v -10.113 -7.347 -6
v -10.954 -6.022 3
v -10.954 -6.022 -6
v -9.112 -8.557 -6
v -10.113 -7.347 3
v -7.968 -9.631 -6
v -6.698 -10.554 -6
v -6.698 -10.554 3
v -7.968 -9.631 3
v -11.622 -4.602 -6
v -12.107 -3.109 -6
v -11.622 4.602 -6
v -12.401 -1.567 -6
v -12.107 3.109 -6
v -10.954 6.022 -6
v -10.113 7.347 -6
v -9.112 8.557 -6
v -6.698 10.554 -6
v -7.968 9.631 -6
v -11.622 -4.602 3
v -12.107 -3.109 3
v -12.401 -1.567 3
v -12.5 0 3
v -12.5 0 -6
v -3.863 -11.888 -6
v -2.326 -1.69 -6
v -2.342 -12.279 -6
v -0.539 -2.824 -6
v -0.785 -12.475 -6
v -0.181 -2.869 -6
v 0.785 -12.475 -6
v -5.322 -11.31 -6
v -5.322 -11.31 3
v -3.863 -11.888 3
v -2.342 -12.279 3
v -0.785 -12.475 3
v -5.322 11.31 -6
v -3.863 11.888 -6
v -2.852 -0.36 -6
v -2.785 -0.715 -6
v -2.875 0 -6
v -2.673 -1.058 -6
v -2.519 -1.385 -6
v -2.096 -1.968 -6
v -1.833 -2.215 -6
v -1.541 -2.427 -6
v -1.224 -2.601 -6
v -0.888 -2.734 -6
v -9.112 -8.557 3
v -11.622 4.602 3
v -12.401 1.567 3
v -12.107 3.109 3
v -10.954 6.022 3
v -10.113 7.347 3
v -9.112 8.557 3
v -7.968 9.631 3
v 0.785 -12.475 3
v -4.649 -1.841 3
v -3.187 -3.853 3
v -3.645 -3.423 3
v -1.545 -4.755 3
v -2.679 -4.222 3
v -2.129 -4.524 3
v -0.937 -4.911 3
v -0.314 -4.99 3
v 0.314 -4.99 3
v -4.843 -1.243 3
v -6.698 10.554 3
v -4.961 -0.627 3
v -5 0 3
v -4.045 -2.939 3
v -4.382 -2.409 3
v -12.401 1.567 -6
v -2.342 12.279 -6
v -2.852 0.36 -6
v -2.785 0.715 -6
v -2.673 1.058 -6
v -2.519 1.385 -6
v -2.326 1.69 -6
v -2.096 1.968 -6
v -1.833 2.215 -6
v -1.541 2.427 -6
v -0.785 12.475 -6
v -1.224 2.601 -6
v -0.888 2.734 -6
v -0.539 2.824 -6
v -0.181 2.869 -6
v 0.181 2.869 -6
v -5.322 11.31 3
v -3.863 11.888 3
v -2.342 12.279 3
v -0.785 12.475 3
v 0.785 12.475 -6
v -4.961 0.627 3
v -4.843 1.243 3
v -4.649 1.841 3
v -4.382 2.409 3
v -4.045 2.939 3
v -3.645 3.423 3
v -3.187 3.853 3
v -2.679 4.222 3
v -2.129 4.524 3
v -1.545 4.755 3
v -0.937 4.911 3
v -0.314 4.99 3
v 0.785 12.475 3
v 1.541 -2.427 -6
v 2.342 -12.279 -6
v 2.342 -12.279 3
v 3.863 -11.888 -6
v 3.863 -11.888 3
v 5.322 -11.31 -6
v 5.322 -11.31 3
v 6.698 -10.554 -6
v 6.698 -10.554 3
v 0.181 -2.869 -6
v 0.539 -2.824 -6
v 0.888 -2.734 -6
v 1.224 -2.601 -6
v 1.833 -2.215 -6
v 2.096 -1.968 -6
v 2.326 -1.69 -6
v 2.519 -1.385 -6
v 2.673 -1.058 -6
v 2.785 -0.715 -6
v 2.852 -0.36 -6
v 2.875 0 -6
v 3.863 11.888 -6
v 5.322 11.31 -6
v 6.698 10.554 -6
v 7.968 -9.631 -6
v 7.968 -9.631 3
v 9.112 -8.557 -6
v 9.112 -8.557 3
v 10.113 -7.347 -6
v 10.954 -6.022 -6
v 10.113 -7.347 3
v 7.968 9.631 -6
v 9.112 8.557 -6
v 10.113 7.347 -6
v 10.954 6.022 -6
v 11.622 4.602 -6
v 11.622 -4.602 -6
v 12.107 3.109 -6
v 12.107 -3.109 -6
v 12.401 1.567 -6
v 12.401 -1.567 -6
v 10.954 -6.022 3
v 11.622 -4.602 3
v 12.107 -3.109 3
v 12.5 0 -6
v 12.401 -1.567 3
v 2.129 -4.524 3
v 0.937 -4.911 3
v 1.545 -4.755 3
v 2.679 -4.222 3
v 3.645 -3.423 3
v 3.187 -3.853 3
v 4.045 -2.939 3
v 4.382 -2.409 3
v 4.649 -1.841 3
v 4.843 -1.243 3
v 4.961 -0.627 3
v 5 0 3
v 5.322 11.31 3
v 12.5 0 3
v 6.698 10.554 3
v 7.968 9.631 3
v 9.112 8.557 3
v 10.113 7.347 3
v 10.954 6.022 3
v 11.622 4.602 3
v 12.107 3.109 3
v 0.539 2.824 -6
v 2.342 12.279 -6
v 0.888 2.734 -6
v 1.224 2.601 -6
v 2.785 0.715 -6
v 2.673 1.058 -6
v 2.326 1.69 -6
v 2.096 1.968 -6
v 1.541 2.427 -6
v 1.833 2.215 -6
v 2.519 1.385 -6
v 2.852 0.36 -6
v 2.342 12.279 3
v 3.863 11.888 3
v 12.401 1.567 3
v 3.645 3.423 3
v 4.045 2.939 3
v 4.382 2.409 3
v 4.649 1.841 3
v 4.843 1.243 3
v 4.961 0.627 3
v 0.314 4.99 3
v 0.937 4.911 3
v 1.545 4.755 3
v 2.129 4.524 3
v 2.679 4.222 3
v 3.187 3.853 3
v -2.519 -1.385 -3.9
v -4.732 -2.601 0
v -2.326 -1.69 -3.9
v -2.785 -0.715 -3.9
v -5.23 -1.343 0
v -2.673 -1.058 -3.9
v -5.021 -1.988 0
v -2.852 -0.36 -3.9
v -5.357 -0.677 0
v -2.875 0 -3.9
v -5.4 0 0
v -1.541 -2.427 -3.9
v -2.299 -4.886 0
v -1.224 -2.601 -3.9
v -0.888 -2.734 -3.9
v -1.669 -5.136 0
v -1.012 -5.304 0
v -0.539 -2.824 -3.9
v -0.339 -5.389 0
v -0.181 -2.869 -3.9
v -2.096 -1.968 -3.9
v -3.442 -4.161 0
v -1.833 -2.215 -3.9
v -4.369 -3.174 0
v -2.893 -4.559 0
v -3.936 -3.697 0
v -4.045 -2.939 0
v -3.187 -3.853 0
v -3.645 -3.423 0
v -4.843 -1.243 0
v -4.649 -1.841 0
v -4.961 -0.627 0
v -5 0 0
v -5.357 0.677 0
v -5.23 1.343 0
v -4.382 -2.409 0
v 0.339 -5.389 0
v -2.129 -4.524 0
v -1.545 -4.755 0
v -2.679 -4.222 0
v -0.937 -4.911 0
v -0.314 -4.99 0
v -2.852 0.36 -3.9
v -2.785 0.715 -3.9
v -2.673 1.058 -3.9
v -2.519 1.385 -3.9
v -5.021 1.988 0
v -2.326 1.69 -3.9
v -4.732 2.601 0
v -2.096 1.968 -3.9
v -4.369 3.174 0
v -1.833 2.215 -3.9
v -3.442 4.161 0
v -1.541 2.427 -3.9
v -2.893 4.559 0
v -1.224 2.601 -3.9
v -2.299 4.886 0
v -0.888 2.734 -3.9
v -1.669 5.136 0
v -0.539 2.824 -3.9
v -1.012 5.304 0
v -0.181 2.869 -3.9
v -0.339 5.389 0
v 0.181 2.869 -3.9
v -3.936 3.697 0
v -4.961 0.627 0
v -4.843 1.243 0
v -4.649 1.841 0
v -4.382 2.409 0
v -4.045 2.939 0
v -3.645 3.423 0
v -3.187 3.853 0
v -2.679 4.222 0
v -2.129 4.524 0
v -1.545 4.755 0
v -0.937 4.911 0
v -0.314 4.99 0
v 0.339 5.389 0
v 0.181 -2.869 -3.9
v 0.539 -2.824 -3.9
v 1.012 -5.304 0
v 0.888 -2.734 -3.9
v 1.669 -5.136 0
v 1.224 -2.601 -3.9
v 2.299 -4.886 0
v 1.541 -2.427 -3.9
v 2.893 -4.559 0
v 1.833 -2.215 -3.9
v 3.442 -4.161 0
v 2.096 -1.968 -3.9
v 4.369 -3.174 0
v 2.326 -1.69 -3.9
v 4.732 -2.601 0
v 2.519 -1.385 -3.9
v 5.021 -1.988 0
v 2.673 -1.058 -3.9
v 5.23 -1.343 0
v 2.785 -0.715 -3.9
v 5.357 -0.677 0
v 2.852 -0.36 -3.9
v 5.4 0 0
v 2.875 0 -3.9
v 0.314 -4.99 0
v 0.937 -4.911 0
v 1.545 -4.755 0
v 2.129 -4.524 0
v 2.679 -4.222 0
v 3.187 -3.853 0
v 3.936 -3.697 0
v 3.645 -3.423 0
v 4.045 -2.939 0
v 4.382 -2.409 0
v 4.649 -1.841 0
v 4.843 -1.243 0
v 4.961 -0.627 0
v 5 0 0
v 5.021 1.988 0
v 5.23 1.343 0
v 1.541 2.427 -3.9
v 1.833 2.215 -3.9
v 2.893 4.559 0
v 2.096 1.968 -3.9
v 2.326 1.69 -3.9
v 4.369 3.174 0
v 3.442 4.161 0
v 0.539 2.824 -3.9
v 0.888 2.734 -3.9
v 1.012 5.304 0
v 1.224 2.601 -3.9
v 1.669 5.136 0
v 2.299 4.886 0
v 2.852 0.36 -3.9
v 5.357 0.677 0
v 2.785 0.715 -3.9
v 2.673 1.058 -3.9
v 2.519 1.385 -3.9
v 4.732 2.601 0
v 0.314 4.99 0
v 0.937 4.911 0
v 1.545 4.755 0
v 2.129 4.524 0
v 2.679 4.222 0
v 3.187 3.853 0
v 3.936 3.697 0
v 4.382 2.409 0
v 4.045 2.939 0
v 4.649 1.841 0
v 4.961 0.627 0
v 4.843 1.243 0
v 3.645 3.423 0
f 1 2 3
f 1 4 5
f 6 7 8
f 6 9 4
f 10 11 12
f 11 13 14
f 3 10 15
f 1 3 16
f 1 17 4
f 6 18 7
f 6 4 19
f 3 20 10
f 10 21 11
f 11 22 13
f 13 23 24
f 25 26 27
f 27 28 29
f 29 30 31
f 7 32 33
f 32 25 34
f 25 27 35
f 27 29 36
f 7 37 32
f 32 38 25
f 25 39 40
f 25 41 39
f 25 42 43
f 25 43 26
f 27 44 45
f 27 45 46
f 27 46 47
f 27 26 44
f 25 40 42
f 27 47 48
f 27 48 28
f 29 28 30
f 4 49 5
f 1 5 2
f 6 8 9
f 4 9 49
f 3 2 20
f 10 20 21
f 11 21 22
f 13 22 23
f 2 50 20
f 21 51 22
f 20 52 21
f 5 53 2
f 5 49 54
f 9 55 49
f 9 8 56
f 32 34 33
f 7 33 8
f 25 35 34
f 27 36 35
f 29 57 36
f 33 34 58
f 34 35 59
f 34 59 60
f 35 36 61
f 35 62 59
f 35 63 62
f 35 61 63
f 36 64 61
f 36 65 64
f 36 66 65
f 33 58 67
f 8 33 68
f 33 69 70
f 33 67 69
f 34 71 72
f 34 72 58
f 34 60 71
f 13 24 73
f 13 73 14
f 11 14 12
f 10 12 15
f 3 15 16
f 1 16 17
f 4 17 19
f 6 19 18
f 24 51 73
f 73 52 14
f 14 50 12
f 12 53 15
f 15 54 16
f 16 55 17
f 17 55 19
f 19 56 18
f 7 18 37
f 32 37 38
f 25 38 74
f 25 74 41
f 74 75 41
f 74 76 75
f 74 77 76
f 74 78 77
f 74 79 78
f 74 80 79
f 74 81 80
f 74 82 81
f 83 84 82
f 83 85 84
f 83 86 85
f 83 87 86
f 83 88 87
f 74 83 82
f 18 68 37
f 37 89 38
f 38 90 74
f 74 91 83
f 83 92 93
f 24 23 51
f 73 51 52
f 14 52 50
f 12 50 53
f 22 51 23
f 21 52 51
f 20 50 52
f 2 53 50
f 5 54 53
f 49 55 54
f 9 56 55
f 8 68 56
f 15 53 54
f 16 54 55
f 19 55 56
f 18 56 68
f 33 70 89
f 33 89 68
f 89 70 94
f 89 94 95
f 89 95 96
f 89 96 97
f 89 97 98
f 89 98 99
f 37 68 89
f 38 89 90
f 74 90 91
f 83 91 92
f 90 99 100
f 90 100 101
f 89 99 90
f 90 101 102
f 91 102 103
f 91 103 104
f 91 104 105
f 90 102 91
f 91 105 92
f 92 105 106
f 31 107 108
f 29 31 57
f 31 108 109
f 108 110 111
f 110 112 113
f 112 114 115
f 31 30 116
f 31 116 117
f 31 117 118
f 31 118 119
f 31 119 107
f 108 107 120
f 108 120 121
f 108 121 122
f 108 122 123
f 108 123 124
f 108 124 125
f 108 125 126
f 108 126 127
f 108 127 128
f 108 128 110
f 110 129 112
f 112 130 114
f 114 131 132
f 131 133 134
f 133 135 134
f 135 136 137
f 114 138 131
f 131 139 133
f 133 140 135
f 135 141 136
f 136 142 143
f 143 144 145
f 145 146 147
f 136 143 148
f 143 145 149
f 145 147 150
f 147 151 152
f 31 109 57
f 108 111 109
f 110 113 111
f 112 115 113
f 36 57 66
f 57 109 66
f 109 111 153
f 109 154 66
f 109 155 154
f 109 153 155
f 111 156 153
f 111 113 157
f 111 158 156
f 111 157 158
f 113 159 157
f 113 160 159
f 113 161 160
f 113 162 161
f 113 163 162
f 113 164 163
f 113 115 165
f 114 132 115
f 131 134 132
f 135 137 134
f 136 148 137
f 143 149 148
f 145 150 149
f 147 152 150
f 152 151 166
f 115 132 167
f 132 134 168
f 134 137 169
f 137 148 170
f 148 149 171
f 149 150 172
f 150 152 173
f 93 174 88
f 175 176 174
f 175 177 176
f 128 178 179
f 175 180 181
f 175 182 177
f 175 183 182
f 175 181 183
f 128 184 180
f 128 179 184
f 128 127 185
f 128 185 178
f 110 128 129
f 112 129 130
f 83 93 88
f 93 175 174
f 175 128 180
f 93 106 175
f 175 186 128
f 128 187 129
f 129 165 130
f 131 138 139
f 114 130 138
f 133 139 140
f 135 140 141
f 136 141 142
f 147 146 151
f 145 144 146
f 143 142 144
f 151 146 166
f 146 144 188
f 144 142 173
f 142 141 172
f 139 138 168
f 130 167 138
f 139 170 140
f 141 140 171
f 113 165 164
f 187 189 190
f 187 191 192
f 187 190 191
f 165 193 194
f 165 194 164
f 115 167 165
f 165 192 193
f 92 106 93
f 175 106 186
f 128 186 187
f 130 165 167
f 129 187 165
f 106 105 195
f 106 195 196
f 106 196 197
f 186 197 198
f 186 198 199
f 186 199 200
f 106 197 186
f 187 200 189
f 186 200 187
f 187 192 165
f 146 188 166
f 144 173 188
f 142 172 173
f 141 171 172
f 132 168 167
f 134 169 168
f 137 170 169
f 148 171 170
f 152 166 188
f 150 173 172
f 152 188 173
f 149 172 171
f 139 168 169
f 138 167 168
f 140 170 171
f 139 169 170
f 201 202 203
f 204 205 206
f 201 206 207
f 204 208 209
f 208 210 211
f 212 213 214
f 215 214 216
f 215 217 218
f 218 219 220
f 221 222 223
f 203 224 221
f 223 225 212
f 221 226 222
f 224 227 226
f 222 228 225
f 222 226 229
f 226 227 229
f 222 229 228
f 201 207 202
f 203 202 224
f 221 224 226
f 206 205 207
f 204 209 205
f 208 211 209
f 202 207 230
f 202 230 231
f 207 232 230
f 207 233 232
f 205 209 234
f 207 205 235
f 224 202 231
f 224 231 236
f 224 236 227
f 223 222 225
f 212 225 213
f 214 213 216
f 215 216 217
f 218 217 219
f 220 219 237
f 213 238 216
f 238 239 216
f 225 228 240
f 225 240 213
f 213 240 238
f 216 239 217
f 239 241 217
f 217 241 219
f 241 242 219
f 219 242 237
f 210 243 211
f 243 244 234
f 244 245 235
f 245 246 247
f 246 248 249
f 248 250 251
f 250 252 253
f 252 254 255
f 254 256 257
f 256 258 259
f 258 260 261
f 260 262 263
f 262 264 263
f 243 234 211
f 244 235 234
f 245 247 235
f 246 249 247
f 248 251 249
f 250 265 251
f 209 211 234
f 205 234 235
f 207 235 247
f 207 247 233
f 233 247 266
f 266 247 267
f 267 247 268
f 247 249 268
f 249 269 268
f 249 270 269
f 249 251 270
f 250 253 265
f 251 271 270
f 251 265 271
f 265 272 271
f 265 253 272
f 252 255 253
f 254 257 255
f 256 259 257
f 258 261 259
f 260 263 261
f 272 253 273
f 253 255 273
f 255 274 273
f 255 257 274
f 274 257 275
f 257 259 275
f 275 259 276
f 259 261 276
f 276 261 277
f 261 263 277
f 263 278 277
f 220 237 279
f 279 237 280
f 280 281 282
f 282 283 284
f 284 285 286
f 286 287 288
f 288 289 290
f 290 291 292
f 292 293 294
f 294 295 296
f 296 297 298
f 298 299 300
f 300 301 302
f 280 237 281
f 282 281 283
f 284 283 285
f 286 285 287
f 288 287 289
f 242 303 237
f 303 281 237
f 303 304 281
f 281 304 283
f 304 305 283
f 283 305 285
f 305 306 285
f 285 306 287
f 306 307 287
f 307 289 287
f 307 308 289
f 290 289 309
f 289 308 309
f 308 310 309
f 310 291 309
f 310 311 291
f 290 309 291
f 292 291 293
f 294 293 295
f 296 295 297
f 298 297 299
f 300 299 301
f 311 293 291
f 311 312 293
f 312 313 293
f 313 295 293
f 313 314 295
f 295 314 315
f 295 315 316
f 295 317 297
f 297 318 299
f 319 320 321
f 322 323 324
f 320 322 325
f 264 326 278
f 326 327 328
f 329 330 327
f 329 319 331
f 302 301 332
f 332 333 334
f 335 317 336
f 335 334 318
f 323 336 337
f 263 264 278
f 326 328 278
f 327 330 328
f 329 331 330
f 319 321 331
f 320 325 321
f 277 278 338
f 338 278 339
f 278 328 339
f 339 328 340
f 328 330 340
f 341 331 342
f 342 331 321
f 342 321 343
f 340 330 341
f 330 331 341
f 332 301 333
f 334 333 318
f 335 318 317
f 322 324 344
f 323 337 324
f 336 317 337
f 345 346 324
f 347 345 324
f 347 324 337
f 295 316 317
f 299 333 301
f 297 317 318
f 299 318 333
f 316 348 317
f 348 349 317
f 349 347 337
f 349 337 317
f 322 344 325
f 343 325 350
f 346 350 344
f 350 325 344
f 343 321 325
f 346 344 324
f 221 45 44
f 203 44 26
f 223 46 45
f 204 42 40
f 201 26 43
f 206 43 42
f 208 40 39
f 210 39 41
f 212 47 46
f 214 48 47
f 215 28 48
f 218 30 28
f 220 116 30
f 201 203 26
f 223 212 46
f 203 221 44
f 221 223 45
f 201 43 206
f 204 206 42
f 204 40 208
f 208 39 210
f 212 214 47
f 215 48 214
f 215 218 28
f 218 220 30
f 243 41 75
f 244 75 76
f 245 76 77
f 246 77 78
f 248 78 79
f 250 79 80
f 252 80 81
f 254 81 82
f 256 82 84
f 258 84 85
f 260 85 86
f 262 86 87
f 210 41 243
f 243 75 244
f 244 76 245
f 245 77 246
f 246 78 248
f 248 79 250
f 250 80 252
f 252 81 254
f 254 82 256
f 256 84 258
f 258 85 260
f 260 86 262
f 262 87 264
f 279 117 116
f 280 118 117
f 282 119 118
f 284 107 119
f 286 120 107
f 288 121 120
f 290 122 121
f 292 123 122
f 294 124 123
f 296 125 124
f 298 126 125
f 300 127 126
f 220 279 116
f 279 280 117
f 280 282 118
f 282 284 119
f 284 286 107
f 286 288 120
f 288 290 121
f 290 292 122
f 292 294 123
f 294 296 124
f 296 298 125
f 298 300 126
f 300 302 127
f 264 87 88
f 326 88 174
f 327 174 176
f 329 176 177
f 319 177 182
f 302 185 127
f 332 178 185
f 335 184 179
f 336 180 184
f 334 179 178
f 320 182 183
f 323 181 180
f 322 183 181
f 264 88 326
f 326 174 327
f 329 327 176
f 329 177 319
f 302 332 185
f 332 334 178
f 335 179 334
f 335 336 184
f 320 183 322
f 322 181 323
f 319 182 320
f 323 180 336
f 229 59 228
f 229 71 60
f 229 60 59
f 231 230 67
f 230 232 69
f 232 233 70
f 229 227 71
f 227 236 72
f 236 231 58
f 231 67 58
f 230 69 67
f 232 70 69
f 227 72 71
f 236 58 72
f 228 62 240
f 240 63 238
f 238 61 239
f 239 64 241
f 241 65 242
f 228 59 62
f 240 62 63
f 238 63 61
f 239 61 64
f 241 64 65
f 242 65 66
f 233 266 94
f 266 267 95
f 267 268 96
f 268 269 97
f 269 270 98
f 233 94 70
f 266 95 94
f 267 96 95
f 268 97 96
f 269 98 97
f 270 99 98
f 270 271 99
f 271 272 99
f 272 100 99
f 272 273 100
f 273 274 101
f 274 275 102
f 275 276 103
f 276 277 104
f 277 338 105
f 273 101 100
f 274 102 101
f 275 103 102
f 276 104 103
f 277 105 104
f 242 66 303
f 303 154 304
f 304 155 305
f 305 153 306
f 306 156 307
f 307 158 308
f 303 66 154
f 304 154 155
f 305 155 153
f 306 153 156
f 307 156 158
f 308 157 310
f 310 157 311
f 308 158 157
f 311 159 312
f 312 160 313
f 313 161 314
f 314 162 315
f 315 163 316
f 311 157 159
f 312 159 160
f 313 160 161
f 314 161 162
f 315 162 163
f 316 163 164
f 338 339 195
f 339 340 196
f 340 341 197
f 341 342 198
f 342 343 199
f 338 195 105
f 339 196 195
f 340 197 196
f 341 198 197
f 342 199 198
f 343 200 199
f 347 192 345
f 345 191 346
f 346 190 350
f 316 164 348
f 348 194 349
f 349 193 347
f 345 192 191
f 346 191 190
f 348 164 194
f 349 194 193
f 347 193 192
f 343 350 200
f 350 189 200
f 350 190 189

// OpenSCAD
$fn = 50;

difference() {
	union() {
		translate(v = [0, 0, -6.0]) {
			cylinder(h = 9, r = 12.5);
		}
		#translate(v = [0, 0, -9.0]) {
			cylinder(h = 9, r = 2.875);
		}
	}
	union() {
		translate(v = [0, 0, 0]) {
			rotate(a = [0, 0, 0]) {
				difference() {
					union() {
						translate(v = [0, 0, -9.0]) {
							cylinder(h = 9, r = 2.6);
						}
						translate(v = [0, 0, -3.9]) {
							cylinder(h = 3.9, r1 = 2.875, r2 = 5.4);
						}
						translate(v = [0, 0, -9.0]) {
							cylinder(h = 9, r = 2.875);
						}
						translate(v = [0, 0, -9.0]) {
							cylinder(h = 9, r = 2.6);
						}
					}
					union();
				}
			}
		}
		#cylinder(h = 3, r = 5.0);
	}
}
